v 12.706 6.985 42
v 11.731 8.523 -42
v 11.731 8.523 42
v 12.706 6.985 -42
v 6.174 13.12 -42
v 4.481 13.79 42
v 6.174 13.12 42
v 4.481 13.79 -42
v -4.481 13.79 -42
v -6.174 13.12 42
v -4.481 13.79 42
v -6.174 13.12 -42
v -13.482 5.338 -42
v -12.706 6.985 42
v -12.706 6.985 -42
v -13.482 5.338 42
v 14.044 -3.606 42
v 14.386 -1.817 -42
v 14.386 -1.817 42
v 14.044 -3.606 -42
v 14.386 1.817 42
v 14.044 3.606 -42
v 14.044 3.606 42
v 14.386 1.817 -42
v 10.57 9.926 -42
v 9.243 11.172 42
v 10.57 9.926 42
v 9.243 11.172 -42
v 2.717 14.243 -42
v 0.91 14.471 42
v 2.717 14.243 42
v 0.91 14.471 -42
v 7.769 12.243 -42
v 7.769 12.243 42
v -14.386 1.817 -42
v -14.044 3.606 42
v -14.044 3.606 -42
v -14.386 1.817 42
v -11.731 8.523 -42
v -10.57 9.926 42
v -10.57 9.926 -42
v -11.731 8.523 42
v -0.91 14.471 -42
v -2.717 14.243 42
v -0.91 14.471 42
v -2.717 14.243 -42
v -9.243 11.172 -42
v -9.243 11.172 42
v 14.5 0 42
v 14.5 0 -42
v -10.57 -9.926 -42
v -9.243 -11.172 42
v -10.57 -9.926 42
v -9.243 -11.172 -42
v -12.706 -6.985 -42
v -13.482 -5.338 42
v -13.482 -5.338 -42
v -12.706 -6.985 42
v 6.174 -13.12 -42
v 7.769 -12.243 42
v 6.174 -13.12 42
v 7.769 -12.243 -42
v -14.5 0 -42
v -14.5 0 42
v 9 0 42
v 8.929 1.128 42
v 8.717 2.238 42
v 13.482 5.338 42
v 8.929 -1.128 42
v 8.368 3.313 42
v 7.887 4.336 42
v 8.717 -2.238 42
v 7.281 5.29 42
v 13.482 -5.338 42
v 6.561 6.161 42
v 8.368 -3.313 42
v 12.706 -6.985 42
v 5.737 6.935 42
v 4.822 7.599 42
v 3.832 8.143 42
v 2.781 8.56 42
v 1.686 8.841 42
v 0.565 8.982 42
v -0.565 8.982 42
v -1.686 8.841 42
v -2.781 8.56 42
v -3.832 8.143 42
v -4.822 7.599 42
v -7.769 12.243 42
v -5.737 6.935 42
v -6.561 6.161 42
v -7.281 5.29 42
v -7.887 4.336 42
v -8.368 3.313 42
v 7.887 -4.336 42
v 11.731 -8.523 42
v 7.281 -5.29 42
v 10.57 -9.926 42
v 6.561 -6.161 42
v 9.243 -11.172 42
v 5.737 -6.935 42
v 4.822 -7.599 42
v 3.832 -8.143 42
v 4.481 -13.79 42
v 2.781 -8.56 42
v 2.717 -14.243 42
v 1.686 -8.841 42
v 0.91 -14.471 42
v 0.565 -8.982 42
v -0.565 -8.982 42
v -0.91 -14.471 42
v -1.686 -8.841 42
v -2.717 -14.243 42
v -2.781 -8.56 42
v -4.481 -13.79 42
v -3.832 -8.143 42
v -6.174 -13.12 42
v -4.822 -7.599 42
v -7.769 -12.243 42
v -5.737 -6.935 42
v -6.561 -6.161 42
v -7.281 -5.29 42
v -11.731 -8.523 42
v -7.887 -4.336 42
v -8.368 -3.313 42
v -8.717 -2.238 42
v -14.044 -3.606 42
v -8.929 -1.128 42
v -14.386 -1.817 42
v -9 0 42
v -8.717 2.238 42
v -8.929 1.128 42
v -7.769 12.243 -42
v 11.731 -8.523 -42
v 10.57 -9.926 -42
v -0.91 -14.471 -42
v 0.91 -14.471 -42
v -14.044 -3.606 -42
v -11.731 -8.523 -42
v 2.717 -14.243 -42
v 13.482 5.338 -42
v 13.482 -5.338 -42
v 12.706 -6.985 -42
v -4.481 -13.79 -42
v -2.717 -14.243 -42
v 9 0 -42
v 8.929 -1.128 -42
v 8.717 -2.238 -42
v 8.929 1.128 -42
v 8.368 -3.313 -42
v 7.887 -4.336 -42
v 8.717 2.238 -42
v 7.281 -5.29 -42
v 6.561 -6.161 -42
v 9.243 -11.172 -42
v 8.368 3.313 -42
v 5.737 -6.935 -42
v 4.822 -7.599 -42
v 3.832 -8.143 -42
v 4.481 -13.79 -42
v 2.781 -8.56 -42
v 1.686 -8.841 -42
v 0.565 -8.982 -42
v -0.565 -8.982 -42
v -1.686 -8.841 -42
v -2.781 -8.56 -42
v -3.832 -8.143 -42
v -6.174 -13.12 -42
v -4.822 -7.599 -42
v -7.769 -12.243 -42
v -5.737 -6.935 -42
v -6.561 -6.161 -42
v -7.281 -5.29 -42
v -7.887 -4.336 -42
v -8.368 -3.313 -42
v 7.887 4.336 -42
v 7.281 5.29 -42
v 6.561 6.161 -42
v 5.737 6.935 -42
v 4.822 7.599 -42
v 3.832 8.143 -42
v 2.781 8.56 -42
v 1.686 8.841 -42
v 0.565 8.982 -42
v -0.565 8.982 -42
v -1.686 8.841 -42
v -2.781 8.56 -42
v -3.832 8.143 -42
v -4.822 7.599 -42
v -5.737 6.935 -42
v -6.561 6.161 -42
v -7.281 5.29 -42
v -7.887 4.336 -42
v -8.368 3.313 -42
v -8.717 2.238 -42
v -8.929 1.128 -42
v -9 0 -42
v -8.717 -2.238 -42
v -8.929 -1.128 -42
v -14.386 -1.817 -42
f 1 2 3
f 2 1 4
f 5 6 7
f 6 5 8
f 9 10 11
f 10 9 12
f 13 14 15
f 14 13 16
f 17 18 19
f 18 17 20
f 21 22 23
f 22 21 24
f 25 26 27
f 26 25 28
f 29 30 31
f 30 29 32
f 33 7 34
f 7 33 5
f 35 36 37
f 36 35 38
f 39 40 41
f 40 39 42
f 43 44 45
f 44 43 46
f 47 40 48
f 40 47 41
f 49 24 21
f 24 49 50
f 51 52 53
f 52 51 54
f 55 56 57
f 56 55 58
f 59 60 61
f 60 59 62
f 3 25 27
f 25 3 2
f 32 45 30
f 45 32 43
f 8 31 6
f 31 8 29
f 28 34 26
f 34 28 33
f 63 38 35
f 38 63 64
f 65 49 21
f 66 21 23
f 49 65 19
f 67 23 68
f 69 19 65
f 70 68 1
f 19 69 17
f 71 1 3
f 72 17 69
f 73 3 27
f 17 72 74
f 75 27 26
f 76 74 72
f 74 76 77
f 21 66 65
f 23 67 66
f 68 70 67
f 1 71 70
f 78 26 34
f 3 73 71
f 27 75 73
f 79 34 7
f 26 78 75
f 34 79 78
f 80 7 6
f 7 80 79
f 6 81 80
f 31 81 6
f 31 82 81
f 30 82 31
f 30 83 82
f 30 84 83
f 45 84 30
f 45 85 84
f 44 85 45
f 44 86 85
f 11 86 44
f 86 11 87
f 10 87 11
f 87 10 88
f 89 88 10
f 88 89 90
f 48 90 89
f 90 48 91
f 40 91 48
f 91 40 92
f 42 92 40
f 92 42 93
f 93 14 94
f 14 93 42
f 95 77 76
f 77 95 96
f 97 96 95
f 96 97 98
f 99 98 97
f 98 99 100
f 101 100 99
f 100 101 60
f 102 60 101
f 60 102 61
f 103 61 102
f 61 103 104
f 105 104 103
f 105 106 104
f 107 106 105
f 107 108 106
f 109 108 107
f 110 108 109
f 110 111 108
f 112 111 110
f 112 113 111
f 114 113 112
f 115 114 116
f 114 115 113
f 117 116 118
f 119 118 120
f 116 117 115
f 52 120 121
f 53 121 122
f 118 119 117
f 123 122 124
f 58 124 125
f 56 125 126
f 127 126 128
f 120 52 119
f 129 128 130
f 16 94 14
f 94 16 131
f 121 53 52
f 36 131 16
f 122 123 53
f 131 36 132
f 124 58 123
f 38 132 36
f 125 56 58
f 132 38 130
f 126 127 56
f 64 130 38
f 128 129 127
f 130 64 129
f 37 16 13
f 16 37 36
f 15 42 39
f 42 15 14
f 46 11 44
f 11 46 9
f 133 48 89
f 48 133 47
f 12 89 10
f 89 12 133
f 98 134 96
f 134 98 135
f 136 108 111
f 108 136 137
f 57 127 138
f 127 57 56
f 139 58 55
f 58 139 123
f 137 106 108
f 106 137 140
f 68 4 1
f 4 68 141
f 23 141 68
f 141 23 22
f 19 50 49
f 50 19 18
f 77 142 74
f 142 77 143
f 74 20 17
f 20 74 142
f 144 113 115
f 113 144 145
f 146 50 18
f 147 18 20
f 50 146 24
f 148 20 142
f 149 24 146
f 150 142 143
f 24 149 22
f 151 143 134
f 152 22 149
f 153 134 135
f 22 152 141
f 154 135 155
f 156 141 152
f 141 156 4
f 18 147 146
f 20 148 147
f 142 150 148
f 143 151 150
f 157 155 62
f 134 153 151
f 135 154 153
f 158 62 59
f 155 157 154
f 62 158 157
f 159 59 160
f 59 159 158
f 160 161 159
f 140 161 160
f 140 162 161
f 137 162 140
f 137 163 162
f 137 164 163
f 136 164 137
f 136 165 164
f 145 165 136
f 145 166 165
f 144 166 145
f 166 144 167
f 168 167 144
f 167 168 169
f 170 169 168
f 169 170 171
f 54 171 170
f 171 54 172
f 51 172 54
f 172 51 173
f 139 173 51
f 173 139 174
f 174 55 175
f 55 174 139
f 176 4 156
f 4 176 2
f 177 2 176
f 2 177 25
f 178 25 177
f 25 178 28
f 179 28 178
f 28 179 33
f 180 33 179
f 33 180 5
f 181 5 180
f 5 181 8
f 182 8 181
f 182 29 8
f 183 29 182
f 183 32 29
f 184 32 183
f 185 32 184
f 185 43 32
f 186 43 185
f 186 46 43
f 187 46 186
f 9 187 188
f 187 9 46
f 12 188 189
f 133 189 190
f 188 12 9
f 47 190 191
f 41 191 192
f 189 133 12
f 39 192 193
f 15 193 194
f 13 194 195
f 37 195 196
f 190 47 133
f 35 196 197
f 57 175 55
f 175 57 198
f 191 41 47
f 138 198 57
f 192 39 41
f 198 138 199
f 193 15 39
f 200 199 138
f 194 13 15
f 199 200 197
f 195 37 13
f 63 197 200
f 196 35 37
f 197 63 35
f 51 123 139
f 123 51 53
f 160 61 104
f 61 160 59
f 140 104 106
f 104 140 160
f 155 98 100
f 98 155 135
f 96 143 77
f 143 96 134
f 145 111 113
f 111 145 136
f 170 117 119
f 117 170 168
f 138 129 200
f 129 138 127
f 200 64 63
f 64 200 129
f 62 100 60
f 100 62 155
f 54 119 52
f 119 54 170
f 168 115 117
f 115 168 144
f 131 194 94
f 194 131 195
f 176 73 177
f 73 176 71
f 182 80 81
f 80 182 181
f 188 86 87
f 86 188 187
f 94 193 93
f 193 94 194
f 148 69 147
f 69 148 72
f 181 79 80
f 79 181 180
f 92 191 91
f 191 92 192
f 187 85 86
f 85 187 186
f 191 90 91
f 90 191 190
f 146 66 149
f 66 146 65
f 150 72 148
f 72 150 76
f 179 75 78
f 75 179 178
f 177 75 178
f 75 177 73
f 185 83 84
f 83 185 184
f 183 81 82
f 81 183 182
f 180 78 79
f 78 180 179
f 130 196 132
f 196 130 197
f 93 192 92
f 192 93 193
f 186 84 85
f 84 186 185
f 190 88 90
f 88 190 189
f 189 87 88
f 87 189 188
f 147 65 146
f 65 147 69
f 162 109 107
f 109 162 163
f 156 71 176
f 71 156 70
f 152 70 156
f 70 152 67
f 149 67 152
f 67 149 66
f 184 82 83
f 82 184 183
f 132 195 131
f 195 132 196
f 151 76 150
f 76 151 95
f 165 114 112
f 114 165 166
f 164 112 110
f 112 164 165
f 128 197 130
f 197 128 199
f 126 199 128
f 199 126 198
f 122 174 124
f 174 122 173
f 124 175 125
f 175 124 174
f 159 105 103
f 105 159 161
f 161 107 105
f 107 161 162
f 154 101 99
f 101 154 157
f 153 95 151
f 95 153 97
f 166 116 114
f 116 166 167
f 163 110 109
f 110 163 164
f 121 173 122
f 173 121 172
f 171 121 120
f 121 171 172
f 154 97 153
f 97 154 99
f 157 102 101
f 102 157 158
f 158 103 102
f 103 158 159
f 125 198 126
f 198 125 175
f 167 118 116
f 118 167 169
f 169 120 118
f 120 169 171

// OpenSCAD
$fn = 50;


difference() {
	union() {
		translate(v = [0, 0, -42.0000000000]) {
			cylinder(h = 84, r = 14.5000000000);
		}
	}
	union() {
		translate(v = [0, 0, -100.0000000000]) {
			cylinder(h = 200, r = 9);
		}
	}
}
